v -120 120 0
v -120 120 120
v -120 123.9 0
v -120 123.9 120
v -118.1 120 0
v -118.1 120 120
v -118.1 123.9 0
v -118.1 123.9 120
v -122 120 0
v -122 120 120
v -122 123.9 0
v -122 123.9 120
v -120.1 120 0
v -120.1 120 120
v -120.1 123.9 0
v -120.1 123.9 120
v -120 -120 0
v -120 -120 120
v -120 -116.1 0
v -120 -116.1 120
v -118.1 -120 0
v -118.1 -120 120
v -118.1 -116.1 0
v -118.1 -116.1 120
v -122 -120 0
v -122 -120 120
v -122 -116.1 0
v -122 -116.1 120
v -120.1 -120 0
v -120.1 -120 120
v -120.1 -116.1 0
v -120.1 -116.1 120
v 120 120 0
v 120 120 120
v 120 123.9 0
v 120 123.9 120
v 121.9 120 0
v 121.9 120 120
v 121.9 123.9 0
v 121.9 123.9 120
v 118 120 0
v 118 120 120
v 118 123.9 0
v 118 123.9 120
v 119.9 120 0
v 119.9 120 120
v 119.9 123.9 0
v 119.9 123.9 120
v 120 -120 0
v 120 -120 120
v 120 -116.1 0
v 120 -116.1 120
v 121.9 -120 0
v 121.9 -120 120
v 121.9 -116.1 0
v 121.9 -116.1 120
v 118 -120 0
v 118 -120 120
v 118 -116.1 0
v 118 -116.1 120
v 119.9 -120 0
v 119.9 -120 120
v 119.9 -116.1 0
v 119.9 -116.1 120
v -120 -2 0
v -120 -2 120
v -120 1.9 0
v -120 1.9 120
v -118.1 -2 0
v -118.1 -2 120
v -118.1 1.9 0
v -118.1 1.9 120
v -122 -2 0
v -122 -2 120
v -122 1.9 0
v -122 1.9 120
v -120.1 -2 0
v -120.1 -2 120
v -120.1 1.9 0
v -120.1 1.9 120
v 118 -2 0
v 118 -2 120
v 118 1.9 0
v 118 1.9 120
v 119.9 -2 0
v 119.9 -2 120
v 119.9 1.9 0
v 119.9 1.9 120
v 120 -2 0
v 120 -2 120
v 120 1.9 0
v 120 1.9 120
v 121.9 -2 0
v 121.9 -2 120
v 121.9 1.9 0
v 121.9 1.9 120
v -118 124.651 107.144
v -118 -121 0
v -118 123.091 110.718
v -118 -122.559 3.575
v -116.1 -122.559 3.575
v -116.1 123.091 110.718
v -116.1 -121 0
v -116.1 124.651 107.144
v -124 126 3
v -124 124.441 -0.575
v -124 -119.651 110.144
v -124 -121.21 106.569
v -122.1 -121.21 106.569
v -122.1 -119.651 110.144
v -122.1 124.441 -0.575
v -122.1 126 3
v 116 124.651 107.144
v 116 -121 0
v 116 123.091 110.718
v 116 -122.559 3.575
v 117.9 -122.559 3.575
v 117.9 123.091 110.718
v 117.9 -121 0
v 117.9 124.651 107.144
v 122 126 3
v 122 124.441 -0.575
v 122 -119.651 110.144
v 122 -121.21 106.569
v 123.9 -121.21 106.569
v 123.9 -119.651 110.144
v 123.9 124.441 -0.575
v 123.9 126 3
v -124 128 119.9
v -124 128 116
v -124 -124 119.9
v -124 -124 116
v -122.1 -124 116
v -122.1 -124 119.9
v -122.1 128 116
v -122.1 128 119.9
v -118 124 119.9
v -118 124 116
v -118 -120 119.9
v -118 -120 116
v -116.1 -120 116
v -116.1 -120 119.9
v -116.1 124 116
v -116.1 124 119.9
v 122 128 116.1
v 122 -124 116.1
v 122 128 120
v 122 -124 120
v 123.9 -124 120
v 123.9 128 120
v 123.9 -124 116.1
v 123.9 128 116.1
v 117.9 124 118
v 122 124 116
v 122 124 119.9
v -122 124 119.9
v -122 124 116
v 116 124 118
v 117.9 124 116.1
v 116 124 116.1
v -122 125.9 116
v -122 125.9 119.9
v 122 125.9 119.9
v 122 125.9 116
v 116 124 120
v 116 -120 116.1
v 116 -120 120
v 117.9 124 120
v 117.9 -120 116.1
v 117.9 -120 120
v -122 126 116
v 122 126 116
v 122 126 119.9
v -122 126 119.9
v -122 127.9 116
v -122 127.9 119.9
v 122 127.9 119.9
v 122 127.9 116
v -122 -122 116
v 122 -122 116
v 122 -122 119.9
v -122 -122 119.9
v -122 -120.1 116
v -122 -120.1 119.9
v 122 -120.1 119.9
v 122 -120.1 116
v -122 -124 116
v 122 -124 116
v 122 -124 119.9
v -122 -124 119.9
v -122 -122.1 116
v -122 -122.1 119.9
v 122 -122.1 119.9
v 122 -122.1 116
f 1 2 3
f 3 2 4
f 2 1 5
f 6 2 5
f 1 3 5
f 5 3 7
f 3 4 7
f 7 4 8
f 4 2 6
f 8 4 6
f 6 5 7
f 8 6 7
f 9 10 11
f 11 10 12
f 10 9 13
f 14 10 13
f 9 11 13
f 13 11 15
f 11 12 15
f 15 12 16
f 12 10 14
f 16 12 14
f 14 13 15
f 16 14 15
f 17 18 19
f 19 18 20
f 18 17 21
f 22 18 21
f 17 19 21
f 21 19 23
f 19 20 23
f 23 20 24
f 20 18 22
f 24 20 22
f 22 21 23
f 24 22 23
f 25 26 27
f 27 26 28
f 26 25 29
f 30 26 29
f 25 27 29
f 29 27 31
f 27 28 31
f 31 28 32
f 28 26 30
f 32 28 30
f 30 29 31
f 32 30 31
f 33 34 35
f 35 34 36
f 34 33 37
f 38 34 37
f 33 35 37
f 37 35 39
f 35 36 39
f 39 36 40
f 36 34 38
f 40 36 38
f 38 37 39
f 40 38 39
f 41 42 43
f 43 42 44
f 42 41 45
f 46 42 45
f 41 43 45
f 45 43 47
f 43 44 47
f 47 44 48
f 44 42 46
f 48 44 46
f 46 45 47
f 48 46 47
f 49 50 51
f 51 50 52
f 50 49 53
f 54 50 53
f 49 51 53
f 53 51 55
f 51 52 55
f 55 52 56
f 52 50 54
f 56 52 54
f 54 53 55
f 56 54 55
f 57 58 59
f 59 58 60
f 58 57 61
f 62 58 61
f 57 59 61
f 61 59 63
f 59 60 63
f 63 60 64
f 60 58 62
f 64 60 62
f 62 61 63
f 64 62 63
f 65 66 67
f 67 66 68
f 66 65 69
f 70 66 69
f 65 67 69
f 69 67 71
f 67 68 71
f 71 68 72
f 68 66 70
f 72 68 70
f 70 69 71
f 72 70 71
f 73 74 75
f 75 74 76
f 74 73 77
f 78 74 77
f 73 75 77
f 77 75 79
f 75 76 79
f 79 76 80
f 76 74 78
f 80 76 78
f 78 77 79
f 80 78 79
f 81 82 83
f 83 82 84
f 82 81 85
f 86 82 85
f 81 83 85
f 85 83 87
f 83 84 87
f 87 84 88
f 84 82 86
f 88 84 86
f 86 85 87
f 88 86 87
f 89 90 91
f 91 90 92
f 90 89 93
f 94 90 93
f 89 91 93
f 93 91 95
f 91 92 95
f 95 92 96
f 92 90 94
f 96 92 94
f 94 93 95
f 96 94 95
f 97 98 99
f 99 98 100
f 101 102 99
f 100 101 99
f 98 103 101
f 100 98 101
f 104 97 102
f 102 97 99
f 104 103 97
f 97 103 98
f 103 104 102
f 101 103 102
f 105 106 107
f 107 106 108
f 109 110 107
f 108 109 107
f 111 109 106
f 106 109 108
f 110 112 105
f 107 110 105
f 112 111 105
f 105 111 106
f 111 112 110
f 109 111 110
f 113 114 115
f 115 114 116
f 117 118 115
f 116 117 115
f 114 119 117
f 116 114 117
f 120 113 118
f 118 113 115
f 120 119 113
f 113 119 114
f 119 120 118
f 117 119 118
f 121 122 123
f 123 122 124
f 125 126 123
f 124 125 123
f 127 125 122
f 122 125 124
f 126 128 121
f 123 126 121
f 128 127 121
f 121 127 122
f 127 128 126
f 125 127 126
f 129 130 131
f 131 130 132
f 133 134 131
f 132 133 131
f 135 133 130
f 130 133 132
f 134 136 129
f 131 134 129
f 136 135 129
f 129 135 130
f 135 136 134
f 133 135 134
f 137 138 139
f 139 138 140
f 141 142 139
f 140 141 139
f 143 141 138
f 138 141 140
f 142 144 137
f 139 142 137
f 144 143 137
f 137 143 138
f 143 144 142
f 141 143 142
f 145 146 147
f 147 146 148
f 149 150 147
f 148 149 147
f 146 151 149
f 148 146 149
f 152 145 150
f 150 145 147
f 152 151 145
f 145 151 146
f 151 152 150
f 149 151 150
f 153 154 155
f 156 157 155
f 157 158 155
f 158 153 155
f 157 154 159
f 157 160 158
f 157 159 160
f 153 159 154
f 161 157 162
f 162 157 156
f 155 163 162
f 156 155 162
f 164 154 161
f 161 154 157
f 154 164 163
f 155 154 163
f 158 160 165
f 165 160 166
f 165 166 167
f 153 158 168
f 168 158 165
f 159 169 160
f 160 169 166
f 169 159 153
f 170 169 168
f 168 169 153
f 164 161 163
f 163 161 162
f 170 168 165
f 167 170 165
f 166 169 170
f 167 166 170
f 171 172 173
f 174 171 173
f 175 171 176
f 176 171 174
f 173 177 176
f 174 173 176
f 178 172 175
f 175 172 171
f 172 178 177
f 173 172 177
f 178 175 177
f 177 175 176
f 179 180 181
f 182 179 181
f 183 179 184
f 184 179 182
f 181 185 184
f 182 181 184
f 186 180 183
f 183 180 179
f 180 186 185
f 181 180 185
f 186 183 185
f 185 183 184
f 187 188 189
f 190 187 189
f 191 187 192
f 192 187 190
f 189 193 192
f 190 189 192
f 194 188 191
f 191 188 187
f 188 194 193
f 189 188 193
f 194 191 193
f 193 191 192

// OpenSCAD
foot   = 12; // Inches
height = 10 * foot; // Feet
square = 20 * foot; // Feet

// Primary Supports

// Lower Side 1
translate([-square/2, square/2, 0])
	cube([2 - .1, 4 - .1, height]);
translate([-square/2 - 2, square/2, 0])
	cube([2 - .1, 4 - .1, height]);

translate([-square/2, -square/2, 0])
	cube([2 - .1, 4 - .1, height]);
translate([-square/2 - 2, -square/2, 0])
	cube([2 - .1, 4 - .1, height]);

// Lower Side 2
translate([square/2, square/2, 0])
	cube([2 - .1, 4 - .1, height]);
translate([square/2 - 2, square/2, 0])
	cube([2 - .1, 4 - .1, height]);

translate([square/2, -square/2, 0])
	cube([2 - .1, 4 - .1, height]);
translate([square/2 - 2, -square/2, 0])
	cube([2 - .1, 4 - .1, height]);

// Center Supports

// Side 1
translate([-square/2, - 2, 0])
	cube([2 - .1, 4 - .1, height]);
translate([-square/2 - 2, -2, 0])
	cube([2 - .1, 4 - .1, height]);

// Side 2
translate([square/2 - 2, - 2, 0])
	cube([2 - .1, 4 - .1, height]);
translate([square/2, -2, 0])
	cube([2 - .1, 4 - .1, height]);

// Cross Beams
cross_beam_length = floor(sqrt(pow(square, 2) + pow(height, 2)));
cross_beam_angle = atan(height / square);

// Side 1
translate([-square/2 + 2, -square/2 - 1, 0])
	mirror([0, 1, -1])
	rotate([-cross_beam_angle + 3, 0, 0])
	cube([2 - .1, 4 - .1, cross_beam_length]);
translate([-square/2 - 4, square/2 + 6, 3])
	mirror([0, 1, 1])
	rotate([cross_beam_angle - 3, 0, 0])
	cube([2 - .1, 4 - .1, cross_beam_length]);

// Side 2
translate([square/2 - 4, -square/2 - 1, 0])
	mirror([0, 1, -1])
	rotate([-cross_beam_angle + 3, 0, 0])
	cube([2 - .1, 4 - .1, cross_beam_length]);
translate([square/2 + 2, square/2 + 6, 3])
	mirror([0, 1, 1])
	rotate([cross_beam_angle - 3, 0, 0])
	cube([2 - .1, 4 - .1, cross_beam_length]);

// Top Beams
short_top_beam_length = square + 4;
long_short_top_beam_length = square + 12;

// Side 1
// Outer Long
translate([-square/2 - 4, -square/2 - 4, height - 4])
	mirror([0, 1, -1])
	cube([2 - .1, 4 - .1, long_short_top_beam_length]);

// Inner Long (Shorter)
translate([-square/2 + 2, -square/2, height - 4])
	mirror([0, 1, -1])
	cube([2 - .1, 4 - .1, short_top_beam_length]);

// Side 2
// Outer Long
translate([square/2 + 2, square/2 + 8, height])
	mirror([0, 1, 1])
	cube([2 - .1, 4 - .1, long_short_top_beam_length]);

// Inner Long (Shorter)
translate([square/2 - 4, square/2 + 4, height])
	mirror([0, 1, 1])
	cube([2 - .1, 4 - .1, short_top_beam_length]);

// Side 3
// Outer Long
translate([square/2 + 2, square/2 + 4, height - 4])
	mirror([1, 0, 1])
	rotate([0,0,90])
	cube([2 - .1, 4 - .1, short_top_beam_length]);
translate([square/2 + 2, square/2 + 6, height - 4])
	mirror([1, 0, 1])
	rotate([0,0,90])
	cube([2 - .1, 4 - .1, short_top_beam_length]);

// Side 4
// Outer Long
translate([square/2 + 2, -square/2 - 2, height - 4])
	mirror([1, 0, 1])
	rotate([0,0,90])
	cube([2 - .1, 4 - .1, short_top_beam_length]);
translate([square/2 + 2, -square/2 - 4, height - 4])
	mirror([1, 0, 1])
	rotate([0,0,90])
	cube([2 - .1, 4 - .1, short_top_beam_length]);

// Side 3 / 4 Angled Reinforcements
//reinforcement_length = floor(sqrt(pow(square / 4, 2) + pow(height / 2, 2)));
//reinforcement_angle = atan((square / 4) / (height / 2));

//translate([-square / 2 - 2, -square/2 - 2, height - (height / 2)])
//	mirror([0, 0, 0])
//	rotate([reinforcement_angle, 0, 90])
//	cube([2, 4, reinforcement_length]);
